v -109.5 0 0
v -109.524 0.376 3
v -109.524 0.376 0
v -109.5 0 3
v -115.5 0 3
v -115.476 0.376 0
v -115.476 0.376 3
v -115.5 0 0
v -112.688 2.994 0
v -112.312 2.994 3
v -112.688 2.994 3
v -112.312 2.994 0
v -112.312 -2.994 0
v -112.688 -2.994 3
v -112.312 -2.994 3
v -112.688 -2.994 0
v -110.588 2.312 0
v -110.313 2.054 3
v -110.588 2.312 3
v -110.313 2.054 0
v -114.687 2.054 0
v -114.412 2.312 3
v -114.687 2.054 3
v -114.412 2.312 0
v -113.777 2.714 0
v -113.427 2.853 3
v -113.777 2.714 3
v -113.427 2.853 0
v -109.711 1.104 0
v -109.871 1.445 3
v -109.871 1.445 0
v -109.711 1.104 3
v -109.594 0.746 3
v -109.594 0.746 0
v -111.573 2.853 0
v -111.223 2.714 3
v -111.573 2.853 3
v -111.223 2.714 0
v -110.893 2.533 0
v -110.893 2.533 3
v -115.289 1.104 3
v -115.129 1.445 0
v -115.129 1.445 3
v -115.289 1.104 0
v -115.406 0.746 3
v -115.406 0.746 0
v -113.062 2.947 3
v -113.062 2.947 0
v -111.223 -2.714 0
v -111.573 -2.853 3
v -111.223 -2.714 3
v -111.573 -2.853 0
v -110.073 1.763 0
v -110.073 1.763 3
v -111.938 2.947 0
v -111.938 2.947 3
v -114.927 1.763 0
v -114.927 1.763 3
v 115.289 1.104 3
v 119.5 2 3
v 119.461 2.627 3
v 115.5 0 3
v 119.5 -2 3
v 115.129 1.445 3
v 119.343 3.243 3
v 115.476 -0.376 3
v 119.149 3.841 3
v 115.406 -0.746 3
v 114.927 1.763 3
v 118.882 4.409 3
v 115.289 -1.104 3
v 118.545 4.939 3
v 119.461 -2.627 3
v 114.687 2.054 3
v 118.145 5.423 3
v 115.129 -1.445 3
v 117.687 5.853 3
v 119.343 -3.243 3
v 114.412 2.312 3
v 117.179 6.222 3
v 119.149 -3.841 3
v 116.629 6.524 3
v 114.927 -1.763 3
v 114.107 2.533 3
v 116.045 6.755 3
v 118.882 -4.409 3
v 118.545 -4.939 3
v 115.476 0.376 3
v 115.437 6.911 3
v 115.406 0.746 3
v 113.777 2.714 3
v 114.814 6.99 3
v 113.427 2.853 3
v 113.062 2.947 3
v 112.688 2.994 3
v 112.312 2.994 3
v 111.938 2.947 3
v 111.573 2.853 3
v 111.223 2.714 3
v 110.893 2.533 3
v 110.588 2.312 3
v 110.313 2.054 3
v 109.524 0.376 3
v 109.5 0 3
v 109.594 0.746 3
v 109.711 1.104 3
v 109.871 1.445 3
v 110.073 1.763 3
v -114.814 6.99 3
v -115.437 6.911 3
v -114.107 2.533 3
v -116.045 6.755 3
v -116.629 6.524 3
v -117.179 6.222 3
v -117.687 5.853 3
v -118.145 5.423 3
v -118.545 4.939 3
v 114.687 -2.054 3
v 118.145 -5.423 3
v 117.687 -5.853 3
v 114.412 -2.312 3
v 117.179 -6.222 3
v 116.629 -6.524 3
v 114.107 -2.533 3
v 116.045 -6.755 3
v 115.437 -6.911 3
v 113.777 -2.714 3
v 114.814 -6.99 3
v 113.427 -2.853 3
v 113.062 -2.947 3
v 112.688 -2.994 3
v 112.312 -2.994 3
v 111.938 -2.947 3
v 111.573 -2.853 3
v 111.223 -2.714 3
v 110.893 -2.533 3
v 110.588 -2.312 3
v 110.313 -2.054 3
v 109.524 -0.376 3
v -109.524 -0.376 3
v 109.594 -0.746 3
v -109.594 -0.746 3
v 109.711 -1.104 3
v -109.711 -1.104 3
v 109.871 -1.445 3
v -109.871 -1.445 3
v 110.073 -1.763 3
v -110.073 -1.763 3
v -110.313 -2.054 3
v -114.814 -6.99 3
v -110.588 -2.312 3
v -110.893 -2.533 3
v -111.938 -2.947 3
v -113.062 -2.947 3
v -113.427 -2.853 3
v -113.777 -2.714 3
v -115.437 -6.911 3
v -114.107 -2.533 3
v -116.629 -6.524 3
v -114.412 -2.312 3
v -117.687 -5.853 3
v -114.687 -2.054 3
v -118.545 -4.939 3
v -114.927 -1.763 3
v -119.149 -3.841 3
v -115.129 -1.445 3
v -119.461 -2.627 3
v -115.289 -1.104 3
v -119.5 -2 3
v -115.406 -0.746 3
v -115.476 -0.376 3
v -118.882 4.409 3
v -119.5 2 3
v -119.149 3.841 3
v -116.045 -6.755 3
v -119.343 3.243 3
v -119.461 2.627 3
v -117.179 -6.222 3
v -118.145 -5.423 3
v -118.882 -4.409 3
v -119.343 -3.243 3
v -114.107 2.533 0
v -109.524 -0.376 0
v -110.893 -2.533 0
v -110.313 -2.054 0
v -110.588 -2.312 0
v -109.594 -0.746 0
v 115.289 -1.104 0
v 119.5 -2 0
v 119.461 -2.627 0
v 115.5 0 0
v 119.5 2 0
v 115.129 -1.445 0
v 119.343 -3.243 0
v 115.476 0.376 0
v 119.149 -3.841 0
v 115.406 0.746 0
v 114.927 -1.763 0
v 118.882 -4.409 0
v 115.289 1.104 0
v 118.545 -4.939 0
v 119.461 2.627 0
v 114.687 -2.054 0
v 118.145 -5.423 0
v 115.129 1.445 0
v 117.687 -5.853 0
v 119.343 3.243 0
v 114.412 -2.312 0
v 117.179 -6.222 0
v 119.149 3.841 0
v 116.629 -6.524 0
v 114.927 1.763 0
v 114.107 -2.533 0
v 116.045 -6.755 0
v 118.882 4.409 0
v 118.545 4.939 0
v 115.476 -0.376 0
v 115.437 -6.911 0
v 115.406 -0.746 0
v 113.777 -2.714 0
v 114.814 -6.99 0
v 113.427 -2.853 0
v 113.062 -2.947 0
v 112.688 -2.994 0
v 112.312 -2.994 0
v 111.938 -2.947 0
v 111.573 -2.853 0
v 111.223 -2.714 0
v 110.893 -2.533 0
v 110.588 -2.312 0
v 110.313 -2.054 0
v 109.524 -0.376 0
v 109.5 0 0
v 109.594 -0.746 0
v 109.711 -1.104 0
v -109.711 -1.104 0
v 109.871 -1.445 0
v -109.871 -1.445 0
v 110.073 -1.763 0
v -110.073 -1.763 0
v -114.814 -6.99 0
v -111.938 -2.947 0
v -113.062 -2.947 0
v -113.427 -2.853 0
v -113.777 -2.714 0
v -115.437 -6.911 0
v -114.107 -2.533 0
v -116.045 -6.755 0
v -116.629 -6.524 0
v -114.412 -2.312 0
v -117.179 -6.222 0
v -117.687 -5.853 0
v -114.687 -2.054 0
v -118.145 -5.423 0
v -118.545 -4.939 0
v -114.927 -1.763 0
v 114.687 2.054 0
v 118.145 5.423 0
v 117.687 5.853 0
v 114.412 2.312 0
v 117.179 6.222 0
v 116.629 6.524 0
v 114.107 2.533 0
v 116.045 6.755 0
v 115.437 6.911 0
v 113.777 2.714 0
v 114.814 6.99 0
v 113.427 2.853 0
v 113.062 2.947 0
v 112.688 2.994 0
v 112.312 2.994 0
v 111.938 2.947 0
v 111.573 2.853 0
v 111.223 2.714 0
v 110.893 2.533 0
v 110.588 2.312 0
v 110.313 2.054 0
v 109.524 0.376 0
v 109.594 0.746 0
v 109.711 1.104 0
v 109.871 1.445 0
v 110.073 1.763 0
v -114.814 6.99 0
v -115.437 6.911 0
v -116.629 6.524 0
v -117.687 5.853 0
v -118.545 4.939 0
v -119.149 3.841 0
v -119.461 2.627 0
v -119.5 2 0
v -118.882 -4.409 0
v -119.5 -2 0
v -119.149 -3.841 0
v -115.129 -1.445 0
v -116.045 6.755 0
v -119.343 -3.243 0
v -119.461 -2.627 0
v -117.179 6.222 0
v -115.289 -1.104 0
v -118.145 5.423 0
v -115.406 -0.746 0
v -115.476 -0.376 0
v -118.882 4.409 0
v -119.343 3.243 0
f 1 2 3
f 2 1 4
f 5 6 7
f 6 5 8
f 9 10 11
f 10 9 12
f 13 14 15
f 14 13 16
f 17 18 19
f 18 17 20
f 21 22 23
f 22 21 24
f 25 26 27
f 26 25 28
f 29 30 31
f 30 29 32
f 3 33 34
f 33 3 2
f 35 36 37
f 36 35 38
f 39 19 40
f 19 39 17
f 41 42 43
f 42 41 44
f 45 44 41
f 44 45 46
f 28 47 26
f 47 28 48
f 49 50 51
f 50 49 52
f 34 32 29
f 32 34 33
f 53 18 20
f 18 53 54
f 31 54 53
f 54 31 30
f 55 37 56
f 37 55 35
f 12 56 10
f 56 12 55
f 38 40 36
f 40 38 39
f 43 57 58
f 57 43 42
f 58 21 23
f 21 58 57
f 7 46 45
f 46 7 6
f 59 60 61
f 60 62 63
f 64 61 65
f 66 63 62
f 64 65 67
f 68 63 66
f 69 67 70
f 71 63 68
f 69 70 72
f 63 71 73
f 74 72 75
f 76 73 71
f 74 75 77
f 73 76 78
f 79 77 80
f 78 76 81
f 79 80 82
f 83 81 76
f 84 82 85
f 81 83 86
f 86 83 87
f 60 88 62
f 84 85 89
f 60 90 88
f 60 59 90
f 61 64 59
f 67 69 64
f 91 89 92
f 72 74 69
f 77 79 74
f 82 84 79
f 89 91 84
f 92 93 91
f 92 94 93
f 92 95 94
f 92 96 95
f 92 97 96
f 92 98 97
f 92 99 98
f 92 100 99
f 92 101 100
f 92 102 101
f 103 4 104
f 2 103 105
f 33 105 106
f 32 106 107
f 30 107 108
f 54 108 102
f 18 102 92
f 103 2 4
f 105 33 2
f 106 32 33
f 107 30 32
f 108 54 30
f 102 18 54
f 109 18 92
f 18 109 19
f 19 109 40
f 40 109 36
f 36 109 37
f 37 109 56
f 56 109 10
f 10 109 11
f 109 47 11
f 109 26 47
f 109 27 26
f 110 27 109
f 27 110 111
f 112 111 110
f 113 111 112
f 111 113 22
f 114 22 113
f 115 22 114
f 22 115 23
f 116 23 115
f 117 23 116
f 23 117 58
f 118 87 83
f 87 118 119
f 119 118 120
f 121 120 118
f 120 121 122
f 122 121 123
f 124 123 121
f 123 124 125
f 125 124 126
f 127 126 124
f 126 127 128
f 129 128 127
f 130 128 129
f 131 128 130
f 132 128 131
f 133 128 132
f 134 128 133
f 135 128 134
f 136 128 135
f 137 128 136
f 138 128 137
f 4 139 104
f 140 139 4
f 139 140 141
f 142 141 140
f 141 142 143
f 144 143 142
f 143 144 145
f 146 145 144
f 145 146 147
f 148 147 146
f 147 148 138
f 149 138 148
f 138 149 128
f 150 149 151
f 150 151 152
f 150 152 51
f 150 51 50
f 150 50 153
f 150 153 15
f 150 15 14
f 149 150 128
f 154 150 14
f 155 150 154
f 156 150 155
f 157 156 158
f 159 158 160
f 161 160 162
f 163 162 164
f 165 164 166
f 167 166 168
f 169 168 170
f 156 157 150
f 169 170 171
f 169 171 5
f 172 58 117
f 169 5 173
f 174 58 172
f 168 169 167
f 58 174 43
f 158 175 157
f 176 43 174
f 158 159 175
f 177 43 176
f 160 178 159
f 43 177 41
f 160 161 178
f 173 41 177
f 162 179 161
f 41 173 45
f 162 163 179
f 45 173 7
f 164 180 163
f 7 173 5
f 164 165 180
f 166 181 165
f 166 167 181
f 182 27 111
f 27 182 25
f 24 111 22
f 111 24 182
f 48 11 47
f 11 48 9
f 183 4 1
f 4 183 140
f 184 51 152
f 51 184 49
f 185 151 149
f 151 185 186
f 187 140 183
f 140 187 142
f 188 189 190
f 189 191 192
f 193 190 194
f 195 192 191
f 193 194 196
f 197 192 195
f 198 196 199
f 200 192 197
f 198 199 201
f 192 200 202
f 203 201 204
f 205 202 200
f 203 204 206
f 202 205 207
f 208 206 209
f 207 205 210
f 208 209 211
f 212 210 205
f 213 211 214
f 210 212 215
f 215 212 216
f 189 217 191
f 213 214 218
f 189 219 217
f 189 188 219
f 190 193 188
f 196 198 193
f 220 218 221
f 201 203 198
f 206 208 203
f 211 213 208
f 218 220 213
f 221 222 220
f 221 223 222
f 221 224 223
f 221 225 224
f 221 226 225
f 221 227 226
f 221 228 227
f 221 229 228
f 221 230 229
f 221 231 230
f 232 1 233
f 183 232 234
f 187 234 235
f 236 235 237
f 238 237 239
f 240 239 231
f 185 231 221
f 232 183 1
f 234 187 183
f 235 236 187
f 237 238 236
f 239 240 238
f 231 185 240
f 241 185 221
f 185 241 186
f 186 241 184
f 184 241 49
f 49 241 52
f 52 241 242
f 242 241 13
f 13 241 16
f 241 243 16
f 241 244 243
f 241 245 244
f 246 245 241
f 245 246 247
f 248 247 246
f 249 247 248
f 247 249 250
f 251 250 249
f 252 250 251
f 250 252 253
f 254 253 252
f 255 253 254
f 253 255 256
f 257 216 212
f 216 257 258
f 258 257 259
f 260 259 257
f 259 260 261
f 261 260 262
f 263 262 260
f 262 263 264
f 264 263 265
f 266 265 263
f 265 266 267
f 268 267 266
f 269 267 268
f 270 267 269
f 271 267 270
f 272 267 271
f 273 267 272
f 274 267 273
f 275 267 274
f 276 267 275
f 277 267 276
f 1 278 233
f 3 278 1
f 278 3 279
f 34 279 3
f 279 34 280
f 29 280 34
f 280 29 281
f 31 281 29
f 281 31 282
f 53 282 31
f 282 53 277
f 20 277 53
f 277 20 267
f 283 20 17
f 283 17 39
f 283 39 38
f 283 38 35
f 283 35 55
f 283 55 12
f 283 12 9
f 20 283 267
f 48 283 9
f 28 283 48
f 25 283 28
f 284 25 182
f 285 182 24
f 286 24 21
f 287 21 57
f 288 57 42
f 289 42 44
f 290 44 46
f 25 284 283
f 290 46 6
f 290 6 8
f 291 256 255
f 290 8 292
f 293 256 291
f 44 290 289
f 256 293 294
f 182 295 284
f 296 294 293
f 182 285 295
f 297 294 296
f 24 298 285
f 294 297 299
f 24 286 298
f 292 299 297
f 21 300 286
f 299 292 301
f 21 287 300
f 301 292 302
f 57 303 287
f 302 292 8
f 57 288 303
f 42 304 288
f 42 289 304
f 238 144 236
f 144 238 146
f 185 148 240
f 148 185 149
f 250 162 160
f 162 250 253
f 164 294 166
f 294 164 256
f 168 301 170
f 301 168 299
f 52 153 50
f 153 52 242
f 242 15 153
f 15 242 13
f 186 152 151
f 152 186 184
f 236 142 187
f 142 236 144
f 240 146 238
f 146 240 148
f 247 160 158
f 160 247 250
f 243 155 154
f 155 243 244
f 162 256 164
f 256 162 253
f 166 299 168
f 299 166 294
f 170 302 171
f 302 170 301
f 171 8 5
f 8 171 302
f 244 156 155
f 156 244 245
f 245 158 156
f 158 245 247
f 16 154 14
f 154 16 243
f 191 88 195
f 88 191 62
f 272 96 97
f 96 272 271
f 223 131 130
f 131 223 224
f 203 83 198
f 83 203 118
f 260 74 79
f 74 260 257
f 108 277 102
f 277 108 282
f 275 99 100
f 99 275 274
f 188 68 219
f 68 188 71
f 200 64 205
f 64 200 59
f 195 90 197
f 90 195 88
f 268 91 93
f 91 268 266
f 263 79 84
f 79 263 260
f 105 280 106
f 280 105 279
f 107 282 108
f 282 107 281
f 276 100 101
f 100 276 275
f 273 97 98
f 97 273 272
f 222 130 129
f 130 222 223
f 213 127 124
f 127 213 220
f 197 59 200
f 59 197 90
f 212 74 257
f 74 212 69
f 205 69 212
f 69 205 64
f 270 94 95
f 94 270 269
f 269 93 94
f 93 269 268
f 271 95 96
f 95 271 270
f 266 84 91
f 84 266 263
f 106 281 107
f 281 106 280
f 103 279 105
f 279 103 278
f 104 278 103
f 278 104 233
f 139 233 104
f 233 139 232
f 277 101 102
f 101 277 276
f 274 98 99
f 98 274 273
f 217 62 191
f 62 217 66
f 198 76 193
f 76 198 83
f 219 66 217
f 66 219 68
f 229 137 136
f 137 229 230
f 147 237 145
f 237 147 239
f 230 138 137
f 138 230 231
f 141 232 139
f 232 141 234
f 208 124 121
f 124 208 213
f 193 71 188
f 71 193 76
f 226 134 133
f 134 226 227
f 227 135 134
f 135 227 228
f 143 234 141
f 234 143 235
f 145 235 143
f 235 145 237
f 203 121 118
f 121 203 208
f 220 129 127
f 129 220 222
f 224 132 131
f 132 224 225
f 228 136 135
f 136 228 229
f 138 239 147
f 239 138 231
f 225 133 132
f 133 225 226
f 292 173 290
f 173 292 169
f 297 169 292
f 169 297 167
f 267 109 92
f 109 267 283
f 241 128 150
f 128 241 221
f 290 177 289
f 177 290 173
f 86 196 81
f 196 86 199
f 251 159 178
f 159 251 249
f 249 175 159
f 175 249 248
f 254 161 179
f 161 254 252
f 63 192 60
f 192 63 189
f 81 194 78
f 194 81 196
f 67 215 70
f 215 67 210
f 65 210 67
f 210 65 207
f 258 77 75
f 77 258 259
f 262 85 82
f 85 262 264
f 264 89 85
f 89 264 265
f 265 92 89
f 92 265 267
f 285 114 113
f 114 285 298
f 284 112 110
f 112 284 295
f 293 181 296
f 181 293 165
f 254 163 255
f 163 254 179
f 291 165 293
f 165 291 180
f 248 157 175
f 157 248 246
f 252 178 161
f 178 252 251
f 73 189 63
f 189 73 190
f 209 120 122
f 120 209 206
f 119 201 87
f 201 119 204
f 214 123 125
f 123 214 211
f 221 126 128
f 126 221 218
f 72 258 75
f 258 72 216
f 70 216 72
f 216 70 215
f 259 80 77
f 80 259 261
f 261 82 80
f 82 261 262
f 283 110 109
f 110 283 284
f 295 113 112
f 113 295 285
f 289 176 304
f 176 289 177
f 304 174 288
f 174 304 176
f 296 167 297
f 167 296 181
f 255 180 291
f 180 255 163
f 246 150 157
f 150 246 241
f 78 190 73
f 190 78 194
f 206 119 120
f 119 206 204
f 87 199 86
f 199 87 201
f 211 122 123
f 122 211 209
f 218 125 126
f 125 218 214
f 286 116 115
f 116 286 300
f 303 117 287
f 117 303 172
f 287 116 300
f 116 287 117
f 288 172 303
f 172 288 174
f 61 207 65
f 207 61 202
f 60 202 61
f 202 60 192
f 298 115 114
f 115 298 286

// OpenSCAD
$fn = 50;


difference() {
	union() {
		hull() {
			translate(v = [-114.5000000000, 2.0000000000, 0]) {
				cylinder(h = 3, r = 5);
			}
			translate(v = [114.5000000000, 2.0000000000, 0]) {
				cylinder(h = 3, r = 5);
			}
			translate(v = [-114.5000000000, -2.0000000000, 0]) {
				cylinder(h = 3, r = 5);
			}
			translate(v = [114.5000000000, -2.0000000000, 0]) {
				cylinder(h = 3, r = 5);
			}
		}
	}
	union() {
		translate(v = [-112.5000000000, 0.0000000000, 0]) {
			cylinder(h = 3, r = 3.0000000000);
		}
		translate(v = [112.5000000000, 0.0000000000, 0]) {
			cylinder(h = 3, r = 3.0000000000);
		}
		translate(v = [-112.5000000000, 0.0000000000, 0]) {
			cylinder(h = 3, r = 1.5000000000);
		}
		translate(v = [112.5000000000, 0.0000000000, 0]) {
			cylinder(h = 3, r = 1.5000000000);
		}
		translate(v = [-112.5000000000, 0.0000000000, 0]) {
			cylinder(h = 3, r = 1.5000000000);
		}
		translate(v = [112.5000000000, 0.0000000000, 0]) {
			cylinder(h = 3, r = 1.5000000000);
		}
		translate(v = [-112.5000000000, 0.0000000000, 0]) {
			cylinder(h = 3, r = 1.5000000000);
		}
		translate(v = [112.5000000000, 0.0000000000, 0]) {
			cylinder(h = 3, r = 1.5000000000);
		}
	}
}
